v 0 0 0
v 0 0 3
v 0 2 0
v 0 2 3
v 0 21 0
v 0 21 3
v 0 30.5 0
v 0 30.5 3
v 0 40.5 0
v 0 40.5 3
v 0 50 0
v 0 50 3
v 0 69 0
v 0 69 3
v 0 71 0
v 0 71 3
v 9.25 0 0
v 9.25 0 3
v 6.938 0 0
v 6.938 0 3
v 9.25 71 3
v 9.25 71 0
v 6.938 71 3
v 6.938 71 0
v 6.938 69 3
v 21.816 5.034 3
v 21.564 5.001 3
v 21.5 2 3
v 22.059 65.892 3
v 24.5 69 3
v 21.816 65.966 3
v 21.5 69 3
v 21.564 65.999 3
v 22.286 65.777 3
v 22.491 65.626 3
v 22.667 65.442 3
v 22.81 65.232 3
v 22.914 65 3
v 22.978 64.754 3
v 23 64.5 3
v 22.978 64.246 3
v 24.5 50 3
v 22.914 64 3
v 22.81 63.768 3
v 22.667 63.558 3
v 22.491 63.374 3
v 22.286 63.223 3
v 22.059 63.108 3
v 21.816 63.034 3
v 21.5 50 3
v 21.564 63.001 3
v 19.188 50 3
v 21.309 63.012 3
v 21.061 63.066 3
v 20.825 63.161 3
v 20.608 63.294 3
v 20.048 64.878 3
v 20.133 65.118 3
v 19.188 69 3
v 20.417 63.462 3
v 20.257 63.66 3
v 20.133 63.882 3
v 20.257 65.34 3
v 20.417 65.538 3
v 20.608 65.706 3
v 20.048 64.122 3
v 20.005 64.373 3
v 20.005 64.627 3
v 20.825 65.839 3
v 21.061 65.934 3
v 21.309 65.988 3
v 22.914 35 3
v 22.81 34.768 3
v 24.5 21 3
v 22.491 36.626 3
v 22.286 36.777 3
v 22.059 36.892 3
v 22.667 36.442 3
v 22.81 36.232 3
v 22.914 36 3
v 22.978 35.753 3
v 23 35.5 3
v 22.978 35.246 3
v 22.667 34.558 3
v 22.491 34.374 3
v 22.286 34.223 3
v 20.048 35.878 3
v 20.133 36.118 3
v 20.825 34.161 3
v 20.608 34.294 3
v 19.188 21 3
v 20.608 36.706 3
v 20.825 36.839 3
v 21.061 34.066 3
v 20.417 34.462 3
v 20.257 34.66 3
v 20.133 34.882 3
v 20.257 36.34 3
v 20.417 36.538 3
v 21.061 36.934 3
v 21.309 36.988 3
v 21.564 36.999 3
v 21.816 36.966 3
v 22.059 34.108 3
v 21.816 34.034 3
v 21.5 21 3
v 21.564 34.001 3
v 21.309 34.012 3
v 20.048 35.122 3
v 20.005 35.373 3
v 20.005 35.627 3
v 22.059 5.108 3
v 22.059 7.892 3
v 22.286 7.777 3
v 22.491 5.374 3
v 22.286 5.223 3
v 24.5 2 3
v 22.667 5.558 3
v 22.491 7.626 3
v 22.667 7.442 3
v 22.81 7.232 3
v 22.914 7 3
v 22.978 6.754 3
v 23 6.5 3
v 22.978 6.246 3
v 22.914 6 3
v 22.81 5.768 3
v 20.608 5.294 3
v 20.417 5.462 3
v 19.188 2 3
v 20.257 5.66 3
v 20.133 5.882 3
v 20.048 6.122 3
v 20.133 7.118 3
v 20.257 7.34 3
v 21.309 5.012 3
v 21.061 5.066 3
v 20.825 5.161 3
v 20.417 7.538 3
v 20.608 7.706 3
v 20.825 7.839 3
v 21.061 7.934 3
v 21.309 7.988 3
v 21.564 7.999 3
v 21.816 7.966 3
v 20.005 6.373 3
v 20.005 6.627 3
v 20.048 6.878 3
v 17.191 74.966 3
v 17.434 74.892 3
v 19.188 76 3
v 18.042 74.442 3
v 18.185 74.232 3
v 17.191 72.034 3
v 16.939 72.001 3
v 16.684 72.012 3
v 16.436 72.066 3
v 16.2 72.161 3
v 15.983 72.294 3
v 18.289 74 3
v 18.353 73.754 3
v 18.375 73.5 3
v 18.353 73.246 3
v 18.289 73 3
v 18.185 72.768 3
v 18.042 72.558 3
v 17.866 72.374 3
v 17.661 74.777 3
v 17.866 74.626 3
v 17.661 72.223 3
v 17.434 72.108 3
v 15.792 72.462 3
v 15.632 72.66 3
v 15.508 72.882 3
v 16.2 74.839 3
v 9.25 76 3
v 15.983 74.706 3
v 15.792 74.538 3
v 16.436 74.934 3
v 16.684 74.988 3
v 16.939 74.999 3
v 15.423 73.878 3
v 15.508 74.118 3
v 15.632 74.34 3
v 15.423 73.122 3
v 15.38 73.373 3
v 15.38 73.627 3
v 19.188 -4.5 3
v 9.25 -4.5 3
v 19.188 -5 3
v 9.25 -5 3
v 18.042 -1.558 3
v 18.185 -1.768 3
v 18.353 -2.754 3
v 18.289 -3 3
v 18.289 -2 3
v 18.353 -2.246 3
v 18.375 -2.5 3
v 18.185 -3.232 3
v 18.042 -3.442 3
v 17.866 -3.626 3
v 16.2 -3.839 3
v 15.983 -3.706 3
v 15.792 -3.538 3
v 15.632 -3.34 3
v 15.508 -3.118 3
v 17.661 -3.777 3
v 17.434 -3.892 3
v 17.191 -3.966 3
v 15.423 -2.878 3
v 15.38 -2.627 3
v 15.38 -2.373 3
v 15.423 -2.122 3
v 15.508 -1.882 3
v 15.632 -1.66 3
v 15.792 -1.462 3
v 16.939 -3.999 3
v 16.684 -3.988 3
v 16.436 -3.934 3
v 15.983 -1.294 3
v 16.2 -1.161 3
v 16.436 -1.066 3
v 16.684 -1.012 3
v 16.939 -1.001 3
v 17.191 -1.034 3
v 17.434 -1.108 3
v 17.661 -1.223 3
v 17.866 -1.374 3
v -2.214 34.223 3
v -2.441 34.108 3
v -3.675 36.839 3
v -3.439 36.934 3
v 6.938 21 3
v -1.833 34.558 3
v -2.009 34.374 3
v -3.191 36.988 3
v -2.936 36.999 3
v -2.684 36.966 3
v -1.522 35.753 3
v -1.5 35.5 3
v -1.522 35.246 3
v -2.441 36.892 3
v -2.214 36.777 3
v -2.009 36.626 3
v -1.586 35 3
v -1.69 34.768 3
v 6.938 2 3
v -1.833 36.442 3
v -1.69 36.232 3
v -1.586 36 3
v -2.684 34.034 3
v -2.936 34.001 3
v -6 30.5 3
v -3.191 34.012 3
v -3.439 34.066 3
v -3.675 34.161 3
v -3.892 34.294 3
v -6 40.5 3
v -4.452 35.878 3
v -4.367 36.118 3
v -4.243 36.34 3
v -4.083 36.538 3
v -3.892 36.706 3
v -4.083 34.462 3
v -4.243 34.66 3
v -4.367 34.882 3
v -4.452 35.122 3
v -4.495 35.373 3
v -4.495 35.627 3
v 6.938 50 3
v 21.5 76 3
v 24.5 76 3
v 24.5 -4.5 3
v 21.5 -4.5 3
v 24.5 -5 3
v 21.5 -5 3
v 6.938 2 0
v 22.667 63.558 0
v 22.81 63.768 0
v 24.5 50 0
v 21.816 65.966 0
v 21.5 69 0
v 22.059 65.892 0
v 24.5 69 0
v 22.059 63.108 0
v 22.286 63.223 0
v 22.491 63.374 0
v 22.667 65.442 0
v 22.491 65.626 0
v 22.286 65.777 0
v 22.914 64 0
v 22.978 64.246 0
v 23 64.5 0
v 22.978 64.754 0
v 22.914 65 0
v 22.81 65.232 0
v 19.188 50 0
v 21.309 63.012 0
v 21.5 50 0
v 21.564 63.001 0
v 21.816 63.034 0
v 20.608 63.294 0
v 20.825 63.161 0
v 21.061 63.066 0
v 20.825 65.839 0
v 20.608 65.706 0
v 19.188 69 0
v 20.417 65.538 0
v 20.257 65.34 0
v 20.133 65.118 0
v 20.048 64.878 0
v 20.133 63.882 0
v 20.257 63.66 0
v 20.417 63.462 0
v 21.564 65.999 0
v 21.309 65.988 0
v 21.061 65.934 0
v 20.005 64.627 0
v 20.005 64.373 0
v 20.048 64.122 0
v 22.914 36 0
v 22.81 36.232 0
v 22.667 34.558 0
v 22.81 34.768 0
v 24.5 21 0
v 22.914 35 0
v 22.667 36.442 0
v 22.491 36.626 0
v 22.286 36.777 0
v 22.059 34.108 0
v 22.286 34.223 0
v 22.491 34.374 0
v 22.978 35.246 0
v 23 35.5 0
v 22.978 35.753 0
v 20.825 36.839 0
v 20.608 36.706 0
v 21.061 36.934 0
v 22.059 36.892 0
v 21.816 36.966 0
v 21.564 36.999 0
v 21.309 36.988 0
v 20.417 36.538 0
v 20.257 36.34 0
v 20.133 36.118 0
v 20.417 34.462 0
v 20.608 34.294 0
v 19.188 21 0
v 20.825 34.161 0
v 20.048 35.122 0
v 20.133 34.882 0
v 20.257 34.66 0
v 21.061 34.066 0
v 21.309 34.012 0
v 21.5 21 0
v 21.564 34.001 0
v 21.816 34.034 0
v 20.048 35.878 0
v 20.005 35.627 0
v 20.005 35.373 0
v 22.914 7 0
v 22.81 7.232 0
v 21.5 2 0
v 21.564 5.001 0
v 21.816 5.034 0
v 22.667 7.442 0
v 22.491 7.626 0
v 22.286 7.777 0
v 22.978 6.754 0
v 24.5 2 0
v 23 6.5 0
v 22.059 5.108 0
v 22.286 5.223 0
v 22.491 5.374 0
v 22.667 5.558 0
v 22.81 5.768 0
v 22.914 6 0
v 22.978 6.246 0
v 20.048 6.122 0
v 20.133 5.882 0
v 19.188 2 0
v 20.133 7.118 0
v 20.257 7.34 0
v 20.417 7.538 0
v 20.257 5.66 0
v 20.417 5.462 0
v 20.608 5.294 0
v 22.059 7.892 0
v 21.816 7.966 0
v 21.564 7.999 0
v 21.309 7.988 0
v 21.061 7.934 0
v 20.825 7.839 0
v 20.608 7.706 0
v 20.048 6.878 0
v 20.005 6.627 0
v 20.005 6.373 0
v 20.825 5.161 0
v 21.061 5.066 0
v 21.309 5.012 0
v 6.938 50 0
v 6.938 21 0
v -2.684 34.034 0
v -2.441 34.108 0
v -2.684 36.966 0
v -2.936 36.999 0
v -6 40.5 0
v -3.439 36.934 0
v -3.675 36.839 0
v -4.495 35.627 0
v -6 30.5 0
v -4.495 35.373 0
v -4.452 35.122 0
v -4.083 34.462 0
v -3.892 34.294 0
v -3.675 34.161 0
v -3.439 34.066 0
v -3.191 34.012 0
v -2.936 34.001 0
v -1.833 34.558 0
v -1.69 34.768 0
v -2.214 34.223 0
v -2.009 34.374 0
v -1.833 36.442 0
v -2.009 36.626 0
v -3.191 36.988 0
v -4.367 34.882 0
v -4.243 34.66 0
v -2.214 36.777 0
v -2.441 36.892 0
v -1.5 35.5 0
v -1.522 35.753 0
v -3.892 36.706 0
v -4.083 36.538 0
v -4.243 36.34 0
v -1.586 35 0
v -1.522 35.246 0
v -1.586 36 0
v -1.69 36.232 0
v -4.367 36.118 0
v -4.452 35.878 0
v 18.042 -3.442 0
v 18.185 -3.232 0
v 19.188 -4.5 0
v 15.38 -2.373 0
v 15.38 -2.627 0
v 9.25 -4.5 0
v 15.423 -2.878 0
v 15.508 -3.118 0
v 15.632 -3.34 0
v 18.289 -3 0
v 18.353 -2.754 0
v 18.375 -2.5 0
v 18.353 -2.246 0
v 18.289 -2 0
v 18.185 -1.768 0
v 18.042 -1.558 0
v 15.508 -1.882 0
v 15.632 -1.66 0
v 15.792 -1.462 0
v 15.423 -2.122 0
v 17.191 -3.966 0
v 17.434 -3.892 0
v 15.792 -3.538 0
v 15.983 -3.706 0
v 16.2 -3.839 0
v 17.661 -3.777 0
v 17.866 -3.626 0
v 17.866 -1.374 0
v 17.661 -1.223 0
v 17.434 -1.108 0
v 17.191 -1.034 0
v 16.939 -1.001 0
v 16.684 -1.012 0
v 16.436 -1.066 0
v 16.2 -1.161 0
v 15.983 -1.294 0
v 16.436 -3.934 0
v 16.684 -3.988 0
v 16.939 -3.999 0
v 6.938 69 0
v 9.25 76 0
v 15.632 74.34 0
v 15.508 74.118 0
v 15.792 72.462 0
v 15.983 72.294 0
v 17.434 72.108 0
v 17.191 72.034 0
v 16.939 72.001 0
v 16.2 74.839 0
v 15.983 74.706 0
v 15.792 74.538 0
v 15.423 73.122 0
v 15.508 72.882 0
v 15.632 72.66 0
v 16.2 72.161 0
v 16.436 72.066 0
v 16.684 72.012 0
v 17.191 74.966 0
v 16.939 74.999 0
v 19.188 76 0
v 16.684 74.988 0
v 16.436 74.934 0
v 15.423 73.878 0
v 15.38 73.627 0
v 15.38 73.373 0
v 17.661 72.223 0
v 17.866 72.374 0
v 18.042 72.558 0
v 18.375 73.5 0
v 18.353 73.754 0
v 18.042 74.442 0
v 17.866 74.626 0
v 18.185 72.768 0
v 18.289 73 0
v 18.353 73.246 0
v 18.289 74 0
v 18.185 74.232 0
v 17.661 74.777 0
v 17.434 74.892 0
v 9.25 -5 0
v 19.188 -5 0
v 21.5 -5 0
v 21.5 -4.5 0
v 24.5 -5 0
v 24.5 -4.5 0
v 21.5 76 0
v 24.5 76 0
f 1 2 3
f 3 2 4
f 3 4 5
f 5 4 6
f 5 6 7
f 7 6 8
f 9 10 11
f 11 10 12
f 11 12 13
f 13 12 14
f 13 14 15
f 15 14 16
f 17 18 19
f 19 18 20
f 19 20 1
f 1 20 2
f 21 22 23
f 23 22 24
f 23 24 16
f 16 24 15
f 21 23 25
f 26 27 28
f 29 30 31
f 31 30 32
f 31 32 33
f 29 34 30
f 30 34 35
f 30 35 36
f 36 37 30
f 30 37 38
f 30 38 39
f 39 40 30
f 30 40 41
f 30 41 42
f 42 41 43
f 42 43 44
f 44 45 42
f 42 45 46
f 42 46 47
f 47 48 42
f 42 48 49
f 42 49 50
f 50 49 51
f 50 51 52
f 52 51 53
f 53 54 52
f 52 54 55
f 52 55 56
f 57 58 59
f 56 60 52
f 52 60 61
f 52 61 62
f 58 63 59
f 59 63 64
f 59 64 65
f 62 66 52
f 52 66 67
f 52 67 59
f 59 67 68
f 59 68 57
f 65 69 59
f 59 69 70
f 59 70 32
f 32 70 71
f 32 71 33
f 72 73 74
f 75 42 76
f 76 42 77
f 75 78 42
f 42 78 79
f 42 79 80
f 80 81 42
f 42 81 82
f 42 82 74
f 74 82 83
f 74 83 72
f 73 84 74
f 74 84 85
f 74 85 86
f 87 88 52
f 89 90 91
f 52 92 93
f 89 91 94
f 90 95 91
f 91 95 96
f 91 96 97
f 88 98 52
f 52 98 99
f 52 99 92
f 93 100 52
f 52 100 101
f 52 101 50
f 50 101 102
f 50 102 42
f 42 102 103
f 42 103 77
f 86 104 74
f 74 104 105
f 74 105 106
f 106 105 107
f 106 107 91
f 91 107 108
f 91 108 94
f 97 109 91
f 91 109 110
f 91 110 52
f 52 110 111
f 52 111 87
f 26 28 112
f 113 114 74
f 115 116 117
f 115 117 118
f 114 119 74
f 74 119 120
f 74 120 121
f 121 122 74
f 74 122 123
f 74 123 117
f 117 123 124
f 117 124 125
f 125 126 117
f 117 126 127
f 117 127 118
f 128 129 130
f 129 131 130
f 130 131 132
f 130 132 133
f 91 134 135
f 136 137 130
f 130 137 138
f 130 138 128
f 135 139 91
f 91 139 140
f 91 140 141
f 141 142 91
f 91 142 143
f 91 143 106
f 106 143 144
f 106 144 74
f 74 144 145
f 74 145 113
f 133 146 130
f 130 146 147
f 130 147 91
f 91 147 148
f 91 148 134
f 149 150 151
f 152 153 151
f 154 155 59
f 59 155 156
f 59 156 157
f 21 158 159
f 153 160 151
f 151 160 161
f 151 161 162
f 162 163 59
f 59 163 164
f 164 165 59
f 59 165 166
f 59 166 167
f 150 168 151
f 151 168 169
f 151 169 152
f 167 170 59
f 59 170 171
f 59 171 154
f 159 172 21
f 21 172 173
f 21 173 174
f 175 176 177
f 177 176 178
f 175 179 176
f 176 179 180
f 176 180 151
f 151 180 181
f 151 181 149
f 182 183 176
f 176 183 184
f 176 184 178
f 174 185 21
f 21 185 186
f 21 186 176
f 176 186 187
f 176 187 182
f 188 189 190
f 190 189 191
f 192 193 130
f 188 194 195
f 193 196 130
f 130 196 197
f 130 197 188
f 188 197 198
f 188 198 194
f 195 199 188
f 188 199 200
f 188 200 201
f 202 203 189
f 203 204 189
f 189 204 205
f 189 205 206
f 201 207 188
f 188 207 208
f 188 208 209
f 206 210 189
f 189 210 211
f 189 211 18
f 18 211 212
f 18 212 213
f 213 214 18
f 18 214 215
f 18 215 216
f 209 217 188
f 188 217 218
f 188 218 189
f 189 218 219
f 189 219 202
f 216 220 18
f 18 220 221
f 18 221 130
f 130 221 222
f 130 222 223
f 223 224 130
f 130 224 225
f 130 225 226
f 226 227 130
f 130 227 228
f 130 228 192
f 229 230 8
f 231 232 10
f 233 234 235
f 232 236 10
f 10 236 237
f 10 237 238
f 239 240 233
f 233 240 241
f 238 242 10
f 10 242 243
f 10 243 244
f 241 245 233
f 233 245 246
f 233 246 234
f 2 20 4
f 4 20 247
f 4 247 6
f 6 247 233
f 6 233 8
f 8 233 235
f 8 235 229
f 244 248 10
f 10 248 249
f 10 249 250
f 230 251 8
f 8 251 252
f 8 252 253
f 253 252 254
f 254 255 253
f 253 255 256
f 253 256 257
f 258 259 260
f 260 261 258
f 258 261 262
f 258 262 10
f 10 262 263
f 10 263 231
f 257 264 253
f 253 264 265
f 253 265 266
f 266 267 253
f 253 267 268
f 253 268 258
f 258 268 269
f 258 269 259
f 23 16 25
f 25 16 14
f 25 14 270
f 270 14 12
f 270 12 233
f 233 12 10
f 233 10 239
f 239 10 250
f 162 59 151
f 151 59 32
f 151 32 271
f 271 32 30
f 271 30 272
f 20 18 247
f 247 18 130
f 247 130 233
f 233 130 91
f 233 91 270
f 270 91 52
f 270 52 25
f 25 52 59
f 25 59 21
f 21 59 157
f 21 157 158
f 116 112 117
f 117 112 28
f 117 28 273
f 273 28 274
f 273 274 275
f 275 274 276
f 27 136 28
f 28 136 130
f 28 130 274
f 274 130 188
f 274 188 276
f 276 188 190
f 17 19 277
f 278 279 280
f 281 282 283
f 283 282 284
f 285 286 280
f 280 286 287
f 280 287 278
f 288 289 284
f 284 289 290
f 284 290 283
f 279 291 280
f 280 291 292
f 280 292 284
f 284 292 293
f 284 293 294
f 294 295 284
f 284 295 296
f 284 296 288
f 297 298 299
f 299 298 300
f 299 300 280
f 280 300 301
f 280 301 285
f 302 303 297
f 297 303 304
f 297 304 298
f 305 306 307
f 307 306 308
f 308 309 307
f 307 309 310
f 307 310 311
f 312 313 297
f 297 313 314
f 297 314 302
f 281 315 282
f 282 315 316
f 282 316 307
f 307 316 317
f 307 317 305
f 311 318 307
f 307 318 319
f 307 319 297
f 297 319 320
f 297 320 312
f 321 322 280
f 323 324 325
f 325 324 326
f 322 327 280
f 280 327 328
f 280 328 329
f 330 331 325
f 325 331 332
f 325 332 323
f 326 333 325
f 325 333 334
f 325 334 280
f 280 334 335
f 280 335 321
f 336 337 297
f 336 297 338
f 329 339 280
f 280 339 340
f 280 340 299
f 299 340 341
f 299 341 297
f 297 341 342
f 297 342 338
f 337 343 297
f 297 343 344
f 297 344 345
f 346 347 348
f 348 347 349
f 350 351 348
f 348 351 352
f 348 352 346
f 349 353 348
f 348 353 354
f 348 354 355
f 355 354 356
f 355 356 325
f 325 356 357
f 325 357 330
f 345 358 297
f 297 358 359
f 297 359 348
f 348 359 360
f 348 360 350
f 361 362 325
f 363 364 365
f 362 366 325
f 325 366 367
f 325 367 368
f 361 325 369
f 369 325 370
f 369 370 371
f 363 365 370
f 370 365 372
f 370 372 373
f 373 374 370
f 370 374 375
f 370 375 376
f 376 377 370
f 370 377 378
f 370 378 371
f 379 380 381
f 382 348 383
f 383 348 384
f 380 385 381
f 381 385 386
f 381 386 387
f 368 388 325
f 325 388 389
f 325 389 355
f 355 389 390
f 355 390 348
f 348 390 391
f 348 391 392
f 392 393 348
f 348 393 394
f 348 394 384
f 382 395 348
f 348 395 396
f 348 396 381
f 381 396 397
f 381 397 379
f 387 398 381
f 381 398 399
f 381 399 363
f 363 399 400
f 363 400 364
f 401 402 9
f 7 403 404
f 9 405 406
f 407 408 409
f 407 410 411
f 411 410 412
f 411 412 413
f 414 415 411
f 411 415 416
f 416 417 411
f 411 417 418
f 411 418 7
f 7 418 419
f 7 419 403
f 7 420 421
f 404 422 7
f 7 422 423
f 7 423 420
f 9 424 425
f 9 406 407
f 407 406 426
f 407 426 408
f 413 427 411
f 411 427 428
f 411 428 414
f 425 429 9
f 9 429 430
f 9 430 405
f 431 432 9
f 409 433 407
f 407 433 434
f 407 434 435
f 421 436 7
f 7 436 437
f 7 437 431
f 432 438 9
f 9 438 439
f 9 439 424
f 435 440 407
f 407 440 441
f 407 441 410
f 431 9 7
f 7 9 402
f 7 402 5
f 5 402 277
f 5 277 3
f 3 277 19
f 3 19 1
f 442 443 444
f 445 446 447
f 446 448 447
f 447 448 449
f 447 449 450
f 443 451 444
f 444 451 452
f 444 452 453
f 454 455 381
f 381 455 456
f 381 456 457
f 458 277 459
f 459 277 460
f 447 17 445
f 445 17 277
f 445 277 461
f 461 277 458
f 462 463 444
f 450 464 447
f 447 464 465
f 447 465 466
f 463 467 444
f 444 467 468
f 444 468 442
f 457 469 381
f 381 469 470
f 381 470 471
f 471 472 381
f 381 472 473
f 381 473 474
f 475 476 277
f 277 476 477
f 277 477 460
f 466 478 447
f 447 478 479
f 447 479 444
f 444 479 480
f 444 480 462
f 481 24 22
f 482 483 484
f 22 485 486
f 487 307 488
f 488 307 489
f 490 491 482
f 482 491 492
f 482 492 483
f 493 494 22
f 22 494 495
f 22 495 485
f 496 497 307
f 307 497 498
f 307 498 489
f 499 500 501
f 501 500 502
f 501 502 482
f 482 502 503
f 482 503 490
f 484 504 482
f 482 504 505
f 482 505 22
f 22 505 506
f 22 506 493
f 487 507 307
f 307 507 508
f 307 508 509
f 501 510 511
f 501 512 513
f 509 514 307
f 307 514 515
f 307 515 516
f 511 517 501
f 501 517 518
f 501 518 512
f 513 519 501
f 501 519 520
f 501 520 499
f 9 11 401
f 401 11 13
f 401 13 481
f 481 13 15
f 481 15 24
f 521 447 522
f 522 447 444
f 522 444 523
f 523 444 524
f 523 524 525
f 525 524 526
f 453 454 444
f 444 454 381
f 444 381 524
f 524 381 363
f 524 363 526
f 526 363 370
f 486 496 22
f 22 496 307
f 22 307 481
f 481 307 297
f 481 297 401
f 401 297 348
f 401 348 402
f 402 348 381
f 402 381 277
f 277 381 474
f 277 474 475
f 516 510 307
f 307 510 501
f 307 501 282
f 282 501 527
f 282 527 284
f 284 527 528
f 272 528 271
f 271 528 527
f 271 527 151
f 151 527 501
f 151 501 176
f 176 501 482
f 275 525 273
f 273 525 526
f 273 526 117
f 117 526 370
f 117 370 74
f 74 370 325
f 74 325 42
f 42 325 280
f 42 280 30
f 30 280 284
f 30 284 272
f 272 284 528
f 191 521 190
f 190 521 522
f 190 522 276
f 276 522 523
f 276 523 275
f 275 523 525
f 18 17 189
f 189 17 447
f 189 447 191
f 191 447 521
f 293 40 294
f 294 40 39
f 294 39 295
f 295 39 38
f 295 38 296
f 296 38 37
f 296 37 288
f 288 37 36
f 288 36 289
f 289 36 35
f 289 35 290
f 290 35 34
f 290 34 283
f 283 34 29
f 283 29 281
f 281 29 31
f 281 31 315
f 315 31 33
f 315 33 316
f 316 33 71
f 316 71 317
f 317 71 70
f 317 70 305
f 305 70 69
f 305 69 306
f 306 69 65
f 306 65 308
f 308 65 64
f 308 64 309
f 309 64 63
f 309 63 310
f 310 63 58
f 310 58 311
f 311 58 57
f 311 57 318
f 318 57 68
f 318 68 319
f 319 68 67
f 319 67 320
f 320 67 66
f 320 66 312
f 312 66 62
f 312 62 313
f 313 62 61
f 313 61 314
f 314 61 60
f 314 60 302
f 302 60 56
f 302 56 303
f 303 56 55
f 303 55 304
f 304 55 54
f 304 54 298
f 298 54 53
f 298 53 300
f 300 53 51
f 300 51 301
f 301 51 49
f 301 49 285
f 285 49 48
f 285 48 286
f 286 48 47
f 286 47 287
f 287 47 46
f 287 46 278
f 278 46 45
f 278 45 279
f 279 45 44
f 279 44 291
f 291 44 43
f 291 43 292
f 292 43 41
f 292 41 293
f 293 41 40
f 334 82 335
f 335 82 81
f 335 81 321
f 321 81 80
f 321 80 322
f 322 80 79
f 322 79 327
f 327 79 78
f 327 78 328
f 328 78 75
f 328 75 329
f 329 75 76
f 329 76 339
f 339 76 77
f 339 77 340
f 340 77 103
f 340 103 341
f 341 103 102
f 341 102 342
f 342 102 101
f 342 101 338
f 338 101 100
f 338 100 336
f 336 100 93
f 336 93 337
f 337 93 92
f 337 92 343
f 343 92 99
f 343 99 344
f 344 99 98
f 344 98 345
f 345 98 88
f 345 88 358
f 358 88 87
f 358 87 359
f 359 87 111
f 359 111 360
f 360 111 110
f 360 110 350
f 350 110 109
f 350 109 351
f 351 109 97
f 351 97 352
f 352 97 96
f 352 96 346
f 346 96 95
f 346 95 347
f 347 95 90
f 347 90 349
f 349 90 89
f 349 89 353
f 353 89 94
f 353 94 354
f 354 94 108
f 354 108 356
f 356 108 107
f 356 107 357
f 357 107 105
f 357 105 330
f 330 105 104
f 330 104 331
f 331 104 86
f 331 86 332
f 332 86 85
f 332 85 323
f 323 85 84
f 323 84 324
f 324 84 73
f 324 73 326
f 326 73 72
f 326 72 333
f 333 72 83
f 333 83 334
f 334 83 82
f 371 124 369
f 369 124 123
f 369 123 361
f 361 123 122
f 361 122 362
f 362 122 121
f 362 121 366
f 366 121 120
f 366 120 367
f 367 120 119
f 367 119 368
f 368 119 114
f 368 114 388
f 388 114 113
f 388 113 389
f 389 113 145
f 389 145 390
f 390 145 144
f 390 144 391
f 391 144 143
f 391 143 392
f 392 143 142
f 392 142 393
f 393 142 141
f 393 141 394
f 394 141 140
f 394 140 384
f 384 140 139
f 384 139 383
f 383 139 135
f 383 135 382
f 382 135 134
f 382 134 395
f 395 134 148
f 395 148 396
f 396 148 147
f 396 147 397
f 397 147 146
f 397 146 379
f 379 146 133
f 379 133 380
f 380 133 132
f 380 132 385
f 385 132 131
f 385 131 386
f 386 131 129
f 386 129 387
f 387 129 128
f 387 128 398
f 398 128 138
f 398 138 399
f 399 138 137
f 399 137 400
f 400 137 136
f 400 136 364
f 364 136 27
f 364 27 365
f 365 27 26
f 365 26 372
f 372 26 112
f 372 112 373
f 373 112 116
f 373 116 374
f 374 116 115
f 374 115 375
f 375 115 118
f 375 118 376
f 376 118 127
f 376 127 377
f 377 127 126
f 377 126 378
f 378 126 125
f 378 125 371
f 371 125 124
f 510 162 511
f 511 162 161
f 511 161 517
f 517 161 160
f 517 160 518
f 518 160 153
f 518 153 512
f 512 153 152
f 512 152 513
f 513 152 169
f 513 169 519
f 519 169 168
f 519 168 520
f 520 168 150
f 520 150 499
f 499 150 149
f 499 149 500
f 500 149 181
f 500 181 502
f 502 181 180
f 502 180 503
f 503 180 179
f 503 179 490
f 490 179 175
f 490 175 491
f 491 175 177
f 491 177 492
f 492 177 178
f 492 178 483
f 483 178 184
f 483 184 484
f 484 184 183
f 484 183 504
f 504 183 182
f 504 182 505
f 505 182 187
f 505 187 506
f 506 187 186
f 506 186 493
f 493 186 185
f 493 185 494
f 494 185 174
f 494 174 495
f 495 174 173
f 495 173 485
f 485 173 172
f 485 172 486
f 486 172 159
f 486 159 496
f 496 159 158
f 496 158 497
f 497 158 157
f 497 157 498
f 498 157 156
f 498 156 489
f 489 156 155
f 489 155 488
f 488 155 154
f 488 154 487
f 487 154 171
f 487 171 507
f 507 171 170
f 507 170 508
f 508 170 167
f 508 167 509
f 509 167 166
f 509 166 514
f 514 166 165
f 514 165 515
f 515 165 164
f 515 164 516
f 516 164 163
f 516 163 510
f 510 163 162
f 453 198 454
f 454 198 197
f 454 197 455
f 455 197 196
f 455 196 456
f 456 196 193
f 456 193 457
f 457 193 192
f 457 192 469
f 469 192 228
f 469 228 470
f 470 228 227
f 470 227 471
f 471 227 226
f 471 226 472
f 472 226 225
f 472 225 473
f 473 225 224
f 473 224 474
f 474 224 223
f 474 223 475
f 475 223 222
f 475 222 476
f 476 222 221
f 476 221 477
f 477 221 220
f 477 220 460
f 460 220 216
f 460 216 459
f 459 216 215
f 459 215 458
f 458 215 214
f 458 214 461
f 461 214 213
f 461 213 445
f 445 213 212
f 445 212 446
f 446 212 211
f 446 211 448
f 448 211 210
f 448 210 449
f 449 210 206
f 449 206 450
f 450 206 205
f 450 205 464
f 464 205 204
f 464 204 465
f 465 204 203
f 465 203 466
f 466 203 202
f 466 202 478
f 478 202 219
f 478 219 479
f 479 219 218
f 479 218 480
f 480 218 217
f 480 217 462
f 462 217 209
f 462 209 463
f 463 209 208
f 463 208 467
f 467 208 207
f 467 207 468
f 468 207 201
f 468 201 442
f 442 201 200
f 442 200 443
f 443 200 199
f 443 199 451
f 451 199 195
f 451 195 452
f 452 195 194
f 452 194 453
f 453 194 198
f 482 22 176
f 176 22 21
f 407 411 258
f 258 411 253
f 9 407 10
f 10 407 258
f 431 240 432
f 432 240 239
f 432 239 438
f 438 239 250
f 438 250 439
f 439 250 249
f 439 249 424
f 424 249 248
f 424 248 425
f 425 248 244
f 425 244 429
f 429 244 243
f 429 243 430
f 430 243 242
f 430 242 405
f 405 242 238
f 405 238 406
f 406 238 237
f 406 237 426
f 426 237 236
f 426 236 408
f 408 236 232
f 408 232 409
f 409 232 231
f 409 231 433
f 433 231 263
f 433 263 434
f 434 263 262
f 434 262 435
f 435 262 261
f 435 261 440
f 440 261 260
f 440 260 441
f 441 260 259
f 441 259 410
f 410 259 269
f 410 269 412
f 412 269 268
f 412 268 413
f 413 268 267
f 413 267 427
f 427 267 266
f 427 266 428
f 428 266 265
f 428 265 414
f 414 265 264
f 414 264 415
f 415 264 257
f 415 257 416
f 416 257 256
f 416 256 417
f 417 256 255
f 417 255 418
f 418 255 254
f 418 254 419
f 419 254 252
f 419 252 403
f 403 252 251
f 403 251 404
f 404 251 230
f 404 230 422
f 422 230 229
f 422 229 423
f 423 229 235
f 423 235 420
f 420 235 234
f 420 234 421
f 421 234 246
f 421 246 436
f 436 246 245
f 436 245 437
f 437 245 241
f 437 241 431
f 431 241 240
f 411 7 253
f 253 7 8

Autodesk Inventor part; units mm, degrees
ref_plane "YZ Plane" through (0, 0, 0) normal (1, 0, 0) x (0, 1, 0)
ref_plane "XZ Plane" through (0, 0, 0) normal (0, 1, 0) x (-1, 0, 0)
ref_plane "XY Plane" through (0, 0, 0) normal (0, 0, 1) x (1, 0, 0)
sketch "Sketch1" plane through (0, 0, 0) normal (0, 0, 1) x (1, 0, 0)
  line L0 (0, 0) -> (18.5, 0)
  line L1 (0, 0) -> (0, 71)
  line L2 (0, 71) -> (18.5, 71)
  line L3 (18.5, 71) -> (18.5, 0)
  dimension "d0" = 18.5
  dimension "d1" = 71
extrude "Extrusion1" add sketch "Sketch1" along normal blind 3
sketch "Sketch2" plane through (0, 0, 3) normal (0, 0, 1) x (1, 0, 0)
  line L0 (0, 0) -> (18.5, 0) projected
  line L1 (18.5, 0) -> (18.5, 71) projected
  line L2 (18.5, 71) -> (0, 71) projected
  line L3 (0, 71) -> (0, 0) projected
  line L4 (24.5, 71) -> (24.5, 0)
  circle A0 centre (21.5, 64.5) radius 1.5
  circle A1 centre (21.5, 35.5) radius 1.5
  circle A2 centre (21.5, 6.5) radius 1.5
  line L5 (18.5, 71) -> (0, 71) projected
  line L6 (9.25, 71) -> (9.25, 76)
  line L7 (9.25, 76) -> (24.5, 76)
  line L8 (24.5, 76) -> (24.5, 71)
  circle A3 centre (16.875, 73.5) radius 1.5
  line L9 (0, 71) -> (0, 0) projected
  line L10 (9.25, 0) -> (9.25, -5)
  line L11 (9.25, -5) -> (24.5, -5)
  circle A4 centre (16.875, -2.5) radius 1.5
  line L12 (24.5, 0) -> (24.5, -5)
  dimension "d4" = 6
  dimension "d11" = 3
  dimension "d12" = 3
  dimension "d13" = 3
  dimension "d15" = 5
extrude "Extrusion2" add sketch "Sketch2" against normal blind 3 contours L0 L1 L2 L6 L7 L8 L4 L12 L11 L10
sketch "Sketch3" plane through (0, 0, 3) normal (0, 0, 1) x (1, 0, 0)
  line L0 (0, 71) -> (0, 0) projected
  line L1 (0, 35.5) -> (-6, 35.5)
  line L2 (-6, 35.5) -> (-6, 30.5)
  line L3 (-6, 30.5) -> (0, 30.5)
  line L4 (-6, 35.5) -> (-6, 40.5)
  line L5 (-6, 40.5) -> (0, 40.5)
  circle A0 centre (-3, 35.5) radius 1.5
  dimension "d19" = 6
  dimension "d20" = 5
  dimension "d21" = 5
  dimension "d22" = 3
extrude "Extrusion3" add sketch "Sketch3" against normal blind 3 contours L0 L1 A0 L4 L5 | L0 L3 L2 L1 A0
properties part number "side steel plates"
